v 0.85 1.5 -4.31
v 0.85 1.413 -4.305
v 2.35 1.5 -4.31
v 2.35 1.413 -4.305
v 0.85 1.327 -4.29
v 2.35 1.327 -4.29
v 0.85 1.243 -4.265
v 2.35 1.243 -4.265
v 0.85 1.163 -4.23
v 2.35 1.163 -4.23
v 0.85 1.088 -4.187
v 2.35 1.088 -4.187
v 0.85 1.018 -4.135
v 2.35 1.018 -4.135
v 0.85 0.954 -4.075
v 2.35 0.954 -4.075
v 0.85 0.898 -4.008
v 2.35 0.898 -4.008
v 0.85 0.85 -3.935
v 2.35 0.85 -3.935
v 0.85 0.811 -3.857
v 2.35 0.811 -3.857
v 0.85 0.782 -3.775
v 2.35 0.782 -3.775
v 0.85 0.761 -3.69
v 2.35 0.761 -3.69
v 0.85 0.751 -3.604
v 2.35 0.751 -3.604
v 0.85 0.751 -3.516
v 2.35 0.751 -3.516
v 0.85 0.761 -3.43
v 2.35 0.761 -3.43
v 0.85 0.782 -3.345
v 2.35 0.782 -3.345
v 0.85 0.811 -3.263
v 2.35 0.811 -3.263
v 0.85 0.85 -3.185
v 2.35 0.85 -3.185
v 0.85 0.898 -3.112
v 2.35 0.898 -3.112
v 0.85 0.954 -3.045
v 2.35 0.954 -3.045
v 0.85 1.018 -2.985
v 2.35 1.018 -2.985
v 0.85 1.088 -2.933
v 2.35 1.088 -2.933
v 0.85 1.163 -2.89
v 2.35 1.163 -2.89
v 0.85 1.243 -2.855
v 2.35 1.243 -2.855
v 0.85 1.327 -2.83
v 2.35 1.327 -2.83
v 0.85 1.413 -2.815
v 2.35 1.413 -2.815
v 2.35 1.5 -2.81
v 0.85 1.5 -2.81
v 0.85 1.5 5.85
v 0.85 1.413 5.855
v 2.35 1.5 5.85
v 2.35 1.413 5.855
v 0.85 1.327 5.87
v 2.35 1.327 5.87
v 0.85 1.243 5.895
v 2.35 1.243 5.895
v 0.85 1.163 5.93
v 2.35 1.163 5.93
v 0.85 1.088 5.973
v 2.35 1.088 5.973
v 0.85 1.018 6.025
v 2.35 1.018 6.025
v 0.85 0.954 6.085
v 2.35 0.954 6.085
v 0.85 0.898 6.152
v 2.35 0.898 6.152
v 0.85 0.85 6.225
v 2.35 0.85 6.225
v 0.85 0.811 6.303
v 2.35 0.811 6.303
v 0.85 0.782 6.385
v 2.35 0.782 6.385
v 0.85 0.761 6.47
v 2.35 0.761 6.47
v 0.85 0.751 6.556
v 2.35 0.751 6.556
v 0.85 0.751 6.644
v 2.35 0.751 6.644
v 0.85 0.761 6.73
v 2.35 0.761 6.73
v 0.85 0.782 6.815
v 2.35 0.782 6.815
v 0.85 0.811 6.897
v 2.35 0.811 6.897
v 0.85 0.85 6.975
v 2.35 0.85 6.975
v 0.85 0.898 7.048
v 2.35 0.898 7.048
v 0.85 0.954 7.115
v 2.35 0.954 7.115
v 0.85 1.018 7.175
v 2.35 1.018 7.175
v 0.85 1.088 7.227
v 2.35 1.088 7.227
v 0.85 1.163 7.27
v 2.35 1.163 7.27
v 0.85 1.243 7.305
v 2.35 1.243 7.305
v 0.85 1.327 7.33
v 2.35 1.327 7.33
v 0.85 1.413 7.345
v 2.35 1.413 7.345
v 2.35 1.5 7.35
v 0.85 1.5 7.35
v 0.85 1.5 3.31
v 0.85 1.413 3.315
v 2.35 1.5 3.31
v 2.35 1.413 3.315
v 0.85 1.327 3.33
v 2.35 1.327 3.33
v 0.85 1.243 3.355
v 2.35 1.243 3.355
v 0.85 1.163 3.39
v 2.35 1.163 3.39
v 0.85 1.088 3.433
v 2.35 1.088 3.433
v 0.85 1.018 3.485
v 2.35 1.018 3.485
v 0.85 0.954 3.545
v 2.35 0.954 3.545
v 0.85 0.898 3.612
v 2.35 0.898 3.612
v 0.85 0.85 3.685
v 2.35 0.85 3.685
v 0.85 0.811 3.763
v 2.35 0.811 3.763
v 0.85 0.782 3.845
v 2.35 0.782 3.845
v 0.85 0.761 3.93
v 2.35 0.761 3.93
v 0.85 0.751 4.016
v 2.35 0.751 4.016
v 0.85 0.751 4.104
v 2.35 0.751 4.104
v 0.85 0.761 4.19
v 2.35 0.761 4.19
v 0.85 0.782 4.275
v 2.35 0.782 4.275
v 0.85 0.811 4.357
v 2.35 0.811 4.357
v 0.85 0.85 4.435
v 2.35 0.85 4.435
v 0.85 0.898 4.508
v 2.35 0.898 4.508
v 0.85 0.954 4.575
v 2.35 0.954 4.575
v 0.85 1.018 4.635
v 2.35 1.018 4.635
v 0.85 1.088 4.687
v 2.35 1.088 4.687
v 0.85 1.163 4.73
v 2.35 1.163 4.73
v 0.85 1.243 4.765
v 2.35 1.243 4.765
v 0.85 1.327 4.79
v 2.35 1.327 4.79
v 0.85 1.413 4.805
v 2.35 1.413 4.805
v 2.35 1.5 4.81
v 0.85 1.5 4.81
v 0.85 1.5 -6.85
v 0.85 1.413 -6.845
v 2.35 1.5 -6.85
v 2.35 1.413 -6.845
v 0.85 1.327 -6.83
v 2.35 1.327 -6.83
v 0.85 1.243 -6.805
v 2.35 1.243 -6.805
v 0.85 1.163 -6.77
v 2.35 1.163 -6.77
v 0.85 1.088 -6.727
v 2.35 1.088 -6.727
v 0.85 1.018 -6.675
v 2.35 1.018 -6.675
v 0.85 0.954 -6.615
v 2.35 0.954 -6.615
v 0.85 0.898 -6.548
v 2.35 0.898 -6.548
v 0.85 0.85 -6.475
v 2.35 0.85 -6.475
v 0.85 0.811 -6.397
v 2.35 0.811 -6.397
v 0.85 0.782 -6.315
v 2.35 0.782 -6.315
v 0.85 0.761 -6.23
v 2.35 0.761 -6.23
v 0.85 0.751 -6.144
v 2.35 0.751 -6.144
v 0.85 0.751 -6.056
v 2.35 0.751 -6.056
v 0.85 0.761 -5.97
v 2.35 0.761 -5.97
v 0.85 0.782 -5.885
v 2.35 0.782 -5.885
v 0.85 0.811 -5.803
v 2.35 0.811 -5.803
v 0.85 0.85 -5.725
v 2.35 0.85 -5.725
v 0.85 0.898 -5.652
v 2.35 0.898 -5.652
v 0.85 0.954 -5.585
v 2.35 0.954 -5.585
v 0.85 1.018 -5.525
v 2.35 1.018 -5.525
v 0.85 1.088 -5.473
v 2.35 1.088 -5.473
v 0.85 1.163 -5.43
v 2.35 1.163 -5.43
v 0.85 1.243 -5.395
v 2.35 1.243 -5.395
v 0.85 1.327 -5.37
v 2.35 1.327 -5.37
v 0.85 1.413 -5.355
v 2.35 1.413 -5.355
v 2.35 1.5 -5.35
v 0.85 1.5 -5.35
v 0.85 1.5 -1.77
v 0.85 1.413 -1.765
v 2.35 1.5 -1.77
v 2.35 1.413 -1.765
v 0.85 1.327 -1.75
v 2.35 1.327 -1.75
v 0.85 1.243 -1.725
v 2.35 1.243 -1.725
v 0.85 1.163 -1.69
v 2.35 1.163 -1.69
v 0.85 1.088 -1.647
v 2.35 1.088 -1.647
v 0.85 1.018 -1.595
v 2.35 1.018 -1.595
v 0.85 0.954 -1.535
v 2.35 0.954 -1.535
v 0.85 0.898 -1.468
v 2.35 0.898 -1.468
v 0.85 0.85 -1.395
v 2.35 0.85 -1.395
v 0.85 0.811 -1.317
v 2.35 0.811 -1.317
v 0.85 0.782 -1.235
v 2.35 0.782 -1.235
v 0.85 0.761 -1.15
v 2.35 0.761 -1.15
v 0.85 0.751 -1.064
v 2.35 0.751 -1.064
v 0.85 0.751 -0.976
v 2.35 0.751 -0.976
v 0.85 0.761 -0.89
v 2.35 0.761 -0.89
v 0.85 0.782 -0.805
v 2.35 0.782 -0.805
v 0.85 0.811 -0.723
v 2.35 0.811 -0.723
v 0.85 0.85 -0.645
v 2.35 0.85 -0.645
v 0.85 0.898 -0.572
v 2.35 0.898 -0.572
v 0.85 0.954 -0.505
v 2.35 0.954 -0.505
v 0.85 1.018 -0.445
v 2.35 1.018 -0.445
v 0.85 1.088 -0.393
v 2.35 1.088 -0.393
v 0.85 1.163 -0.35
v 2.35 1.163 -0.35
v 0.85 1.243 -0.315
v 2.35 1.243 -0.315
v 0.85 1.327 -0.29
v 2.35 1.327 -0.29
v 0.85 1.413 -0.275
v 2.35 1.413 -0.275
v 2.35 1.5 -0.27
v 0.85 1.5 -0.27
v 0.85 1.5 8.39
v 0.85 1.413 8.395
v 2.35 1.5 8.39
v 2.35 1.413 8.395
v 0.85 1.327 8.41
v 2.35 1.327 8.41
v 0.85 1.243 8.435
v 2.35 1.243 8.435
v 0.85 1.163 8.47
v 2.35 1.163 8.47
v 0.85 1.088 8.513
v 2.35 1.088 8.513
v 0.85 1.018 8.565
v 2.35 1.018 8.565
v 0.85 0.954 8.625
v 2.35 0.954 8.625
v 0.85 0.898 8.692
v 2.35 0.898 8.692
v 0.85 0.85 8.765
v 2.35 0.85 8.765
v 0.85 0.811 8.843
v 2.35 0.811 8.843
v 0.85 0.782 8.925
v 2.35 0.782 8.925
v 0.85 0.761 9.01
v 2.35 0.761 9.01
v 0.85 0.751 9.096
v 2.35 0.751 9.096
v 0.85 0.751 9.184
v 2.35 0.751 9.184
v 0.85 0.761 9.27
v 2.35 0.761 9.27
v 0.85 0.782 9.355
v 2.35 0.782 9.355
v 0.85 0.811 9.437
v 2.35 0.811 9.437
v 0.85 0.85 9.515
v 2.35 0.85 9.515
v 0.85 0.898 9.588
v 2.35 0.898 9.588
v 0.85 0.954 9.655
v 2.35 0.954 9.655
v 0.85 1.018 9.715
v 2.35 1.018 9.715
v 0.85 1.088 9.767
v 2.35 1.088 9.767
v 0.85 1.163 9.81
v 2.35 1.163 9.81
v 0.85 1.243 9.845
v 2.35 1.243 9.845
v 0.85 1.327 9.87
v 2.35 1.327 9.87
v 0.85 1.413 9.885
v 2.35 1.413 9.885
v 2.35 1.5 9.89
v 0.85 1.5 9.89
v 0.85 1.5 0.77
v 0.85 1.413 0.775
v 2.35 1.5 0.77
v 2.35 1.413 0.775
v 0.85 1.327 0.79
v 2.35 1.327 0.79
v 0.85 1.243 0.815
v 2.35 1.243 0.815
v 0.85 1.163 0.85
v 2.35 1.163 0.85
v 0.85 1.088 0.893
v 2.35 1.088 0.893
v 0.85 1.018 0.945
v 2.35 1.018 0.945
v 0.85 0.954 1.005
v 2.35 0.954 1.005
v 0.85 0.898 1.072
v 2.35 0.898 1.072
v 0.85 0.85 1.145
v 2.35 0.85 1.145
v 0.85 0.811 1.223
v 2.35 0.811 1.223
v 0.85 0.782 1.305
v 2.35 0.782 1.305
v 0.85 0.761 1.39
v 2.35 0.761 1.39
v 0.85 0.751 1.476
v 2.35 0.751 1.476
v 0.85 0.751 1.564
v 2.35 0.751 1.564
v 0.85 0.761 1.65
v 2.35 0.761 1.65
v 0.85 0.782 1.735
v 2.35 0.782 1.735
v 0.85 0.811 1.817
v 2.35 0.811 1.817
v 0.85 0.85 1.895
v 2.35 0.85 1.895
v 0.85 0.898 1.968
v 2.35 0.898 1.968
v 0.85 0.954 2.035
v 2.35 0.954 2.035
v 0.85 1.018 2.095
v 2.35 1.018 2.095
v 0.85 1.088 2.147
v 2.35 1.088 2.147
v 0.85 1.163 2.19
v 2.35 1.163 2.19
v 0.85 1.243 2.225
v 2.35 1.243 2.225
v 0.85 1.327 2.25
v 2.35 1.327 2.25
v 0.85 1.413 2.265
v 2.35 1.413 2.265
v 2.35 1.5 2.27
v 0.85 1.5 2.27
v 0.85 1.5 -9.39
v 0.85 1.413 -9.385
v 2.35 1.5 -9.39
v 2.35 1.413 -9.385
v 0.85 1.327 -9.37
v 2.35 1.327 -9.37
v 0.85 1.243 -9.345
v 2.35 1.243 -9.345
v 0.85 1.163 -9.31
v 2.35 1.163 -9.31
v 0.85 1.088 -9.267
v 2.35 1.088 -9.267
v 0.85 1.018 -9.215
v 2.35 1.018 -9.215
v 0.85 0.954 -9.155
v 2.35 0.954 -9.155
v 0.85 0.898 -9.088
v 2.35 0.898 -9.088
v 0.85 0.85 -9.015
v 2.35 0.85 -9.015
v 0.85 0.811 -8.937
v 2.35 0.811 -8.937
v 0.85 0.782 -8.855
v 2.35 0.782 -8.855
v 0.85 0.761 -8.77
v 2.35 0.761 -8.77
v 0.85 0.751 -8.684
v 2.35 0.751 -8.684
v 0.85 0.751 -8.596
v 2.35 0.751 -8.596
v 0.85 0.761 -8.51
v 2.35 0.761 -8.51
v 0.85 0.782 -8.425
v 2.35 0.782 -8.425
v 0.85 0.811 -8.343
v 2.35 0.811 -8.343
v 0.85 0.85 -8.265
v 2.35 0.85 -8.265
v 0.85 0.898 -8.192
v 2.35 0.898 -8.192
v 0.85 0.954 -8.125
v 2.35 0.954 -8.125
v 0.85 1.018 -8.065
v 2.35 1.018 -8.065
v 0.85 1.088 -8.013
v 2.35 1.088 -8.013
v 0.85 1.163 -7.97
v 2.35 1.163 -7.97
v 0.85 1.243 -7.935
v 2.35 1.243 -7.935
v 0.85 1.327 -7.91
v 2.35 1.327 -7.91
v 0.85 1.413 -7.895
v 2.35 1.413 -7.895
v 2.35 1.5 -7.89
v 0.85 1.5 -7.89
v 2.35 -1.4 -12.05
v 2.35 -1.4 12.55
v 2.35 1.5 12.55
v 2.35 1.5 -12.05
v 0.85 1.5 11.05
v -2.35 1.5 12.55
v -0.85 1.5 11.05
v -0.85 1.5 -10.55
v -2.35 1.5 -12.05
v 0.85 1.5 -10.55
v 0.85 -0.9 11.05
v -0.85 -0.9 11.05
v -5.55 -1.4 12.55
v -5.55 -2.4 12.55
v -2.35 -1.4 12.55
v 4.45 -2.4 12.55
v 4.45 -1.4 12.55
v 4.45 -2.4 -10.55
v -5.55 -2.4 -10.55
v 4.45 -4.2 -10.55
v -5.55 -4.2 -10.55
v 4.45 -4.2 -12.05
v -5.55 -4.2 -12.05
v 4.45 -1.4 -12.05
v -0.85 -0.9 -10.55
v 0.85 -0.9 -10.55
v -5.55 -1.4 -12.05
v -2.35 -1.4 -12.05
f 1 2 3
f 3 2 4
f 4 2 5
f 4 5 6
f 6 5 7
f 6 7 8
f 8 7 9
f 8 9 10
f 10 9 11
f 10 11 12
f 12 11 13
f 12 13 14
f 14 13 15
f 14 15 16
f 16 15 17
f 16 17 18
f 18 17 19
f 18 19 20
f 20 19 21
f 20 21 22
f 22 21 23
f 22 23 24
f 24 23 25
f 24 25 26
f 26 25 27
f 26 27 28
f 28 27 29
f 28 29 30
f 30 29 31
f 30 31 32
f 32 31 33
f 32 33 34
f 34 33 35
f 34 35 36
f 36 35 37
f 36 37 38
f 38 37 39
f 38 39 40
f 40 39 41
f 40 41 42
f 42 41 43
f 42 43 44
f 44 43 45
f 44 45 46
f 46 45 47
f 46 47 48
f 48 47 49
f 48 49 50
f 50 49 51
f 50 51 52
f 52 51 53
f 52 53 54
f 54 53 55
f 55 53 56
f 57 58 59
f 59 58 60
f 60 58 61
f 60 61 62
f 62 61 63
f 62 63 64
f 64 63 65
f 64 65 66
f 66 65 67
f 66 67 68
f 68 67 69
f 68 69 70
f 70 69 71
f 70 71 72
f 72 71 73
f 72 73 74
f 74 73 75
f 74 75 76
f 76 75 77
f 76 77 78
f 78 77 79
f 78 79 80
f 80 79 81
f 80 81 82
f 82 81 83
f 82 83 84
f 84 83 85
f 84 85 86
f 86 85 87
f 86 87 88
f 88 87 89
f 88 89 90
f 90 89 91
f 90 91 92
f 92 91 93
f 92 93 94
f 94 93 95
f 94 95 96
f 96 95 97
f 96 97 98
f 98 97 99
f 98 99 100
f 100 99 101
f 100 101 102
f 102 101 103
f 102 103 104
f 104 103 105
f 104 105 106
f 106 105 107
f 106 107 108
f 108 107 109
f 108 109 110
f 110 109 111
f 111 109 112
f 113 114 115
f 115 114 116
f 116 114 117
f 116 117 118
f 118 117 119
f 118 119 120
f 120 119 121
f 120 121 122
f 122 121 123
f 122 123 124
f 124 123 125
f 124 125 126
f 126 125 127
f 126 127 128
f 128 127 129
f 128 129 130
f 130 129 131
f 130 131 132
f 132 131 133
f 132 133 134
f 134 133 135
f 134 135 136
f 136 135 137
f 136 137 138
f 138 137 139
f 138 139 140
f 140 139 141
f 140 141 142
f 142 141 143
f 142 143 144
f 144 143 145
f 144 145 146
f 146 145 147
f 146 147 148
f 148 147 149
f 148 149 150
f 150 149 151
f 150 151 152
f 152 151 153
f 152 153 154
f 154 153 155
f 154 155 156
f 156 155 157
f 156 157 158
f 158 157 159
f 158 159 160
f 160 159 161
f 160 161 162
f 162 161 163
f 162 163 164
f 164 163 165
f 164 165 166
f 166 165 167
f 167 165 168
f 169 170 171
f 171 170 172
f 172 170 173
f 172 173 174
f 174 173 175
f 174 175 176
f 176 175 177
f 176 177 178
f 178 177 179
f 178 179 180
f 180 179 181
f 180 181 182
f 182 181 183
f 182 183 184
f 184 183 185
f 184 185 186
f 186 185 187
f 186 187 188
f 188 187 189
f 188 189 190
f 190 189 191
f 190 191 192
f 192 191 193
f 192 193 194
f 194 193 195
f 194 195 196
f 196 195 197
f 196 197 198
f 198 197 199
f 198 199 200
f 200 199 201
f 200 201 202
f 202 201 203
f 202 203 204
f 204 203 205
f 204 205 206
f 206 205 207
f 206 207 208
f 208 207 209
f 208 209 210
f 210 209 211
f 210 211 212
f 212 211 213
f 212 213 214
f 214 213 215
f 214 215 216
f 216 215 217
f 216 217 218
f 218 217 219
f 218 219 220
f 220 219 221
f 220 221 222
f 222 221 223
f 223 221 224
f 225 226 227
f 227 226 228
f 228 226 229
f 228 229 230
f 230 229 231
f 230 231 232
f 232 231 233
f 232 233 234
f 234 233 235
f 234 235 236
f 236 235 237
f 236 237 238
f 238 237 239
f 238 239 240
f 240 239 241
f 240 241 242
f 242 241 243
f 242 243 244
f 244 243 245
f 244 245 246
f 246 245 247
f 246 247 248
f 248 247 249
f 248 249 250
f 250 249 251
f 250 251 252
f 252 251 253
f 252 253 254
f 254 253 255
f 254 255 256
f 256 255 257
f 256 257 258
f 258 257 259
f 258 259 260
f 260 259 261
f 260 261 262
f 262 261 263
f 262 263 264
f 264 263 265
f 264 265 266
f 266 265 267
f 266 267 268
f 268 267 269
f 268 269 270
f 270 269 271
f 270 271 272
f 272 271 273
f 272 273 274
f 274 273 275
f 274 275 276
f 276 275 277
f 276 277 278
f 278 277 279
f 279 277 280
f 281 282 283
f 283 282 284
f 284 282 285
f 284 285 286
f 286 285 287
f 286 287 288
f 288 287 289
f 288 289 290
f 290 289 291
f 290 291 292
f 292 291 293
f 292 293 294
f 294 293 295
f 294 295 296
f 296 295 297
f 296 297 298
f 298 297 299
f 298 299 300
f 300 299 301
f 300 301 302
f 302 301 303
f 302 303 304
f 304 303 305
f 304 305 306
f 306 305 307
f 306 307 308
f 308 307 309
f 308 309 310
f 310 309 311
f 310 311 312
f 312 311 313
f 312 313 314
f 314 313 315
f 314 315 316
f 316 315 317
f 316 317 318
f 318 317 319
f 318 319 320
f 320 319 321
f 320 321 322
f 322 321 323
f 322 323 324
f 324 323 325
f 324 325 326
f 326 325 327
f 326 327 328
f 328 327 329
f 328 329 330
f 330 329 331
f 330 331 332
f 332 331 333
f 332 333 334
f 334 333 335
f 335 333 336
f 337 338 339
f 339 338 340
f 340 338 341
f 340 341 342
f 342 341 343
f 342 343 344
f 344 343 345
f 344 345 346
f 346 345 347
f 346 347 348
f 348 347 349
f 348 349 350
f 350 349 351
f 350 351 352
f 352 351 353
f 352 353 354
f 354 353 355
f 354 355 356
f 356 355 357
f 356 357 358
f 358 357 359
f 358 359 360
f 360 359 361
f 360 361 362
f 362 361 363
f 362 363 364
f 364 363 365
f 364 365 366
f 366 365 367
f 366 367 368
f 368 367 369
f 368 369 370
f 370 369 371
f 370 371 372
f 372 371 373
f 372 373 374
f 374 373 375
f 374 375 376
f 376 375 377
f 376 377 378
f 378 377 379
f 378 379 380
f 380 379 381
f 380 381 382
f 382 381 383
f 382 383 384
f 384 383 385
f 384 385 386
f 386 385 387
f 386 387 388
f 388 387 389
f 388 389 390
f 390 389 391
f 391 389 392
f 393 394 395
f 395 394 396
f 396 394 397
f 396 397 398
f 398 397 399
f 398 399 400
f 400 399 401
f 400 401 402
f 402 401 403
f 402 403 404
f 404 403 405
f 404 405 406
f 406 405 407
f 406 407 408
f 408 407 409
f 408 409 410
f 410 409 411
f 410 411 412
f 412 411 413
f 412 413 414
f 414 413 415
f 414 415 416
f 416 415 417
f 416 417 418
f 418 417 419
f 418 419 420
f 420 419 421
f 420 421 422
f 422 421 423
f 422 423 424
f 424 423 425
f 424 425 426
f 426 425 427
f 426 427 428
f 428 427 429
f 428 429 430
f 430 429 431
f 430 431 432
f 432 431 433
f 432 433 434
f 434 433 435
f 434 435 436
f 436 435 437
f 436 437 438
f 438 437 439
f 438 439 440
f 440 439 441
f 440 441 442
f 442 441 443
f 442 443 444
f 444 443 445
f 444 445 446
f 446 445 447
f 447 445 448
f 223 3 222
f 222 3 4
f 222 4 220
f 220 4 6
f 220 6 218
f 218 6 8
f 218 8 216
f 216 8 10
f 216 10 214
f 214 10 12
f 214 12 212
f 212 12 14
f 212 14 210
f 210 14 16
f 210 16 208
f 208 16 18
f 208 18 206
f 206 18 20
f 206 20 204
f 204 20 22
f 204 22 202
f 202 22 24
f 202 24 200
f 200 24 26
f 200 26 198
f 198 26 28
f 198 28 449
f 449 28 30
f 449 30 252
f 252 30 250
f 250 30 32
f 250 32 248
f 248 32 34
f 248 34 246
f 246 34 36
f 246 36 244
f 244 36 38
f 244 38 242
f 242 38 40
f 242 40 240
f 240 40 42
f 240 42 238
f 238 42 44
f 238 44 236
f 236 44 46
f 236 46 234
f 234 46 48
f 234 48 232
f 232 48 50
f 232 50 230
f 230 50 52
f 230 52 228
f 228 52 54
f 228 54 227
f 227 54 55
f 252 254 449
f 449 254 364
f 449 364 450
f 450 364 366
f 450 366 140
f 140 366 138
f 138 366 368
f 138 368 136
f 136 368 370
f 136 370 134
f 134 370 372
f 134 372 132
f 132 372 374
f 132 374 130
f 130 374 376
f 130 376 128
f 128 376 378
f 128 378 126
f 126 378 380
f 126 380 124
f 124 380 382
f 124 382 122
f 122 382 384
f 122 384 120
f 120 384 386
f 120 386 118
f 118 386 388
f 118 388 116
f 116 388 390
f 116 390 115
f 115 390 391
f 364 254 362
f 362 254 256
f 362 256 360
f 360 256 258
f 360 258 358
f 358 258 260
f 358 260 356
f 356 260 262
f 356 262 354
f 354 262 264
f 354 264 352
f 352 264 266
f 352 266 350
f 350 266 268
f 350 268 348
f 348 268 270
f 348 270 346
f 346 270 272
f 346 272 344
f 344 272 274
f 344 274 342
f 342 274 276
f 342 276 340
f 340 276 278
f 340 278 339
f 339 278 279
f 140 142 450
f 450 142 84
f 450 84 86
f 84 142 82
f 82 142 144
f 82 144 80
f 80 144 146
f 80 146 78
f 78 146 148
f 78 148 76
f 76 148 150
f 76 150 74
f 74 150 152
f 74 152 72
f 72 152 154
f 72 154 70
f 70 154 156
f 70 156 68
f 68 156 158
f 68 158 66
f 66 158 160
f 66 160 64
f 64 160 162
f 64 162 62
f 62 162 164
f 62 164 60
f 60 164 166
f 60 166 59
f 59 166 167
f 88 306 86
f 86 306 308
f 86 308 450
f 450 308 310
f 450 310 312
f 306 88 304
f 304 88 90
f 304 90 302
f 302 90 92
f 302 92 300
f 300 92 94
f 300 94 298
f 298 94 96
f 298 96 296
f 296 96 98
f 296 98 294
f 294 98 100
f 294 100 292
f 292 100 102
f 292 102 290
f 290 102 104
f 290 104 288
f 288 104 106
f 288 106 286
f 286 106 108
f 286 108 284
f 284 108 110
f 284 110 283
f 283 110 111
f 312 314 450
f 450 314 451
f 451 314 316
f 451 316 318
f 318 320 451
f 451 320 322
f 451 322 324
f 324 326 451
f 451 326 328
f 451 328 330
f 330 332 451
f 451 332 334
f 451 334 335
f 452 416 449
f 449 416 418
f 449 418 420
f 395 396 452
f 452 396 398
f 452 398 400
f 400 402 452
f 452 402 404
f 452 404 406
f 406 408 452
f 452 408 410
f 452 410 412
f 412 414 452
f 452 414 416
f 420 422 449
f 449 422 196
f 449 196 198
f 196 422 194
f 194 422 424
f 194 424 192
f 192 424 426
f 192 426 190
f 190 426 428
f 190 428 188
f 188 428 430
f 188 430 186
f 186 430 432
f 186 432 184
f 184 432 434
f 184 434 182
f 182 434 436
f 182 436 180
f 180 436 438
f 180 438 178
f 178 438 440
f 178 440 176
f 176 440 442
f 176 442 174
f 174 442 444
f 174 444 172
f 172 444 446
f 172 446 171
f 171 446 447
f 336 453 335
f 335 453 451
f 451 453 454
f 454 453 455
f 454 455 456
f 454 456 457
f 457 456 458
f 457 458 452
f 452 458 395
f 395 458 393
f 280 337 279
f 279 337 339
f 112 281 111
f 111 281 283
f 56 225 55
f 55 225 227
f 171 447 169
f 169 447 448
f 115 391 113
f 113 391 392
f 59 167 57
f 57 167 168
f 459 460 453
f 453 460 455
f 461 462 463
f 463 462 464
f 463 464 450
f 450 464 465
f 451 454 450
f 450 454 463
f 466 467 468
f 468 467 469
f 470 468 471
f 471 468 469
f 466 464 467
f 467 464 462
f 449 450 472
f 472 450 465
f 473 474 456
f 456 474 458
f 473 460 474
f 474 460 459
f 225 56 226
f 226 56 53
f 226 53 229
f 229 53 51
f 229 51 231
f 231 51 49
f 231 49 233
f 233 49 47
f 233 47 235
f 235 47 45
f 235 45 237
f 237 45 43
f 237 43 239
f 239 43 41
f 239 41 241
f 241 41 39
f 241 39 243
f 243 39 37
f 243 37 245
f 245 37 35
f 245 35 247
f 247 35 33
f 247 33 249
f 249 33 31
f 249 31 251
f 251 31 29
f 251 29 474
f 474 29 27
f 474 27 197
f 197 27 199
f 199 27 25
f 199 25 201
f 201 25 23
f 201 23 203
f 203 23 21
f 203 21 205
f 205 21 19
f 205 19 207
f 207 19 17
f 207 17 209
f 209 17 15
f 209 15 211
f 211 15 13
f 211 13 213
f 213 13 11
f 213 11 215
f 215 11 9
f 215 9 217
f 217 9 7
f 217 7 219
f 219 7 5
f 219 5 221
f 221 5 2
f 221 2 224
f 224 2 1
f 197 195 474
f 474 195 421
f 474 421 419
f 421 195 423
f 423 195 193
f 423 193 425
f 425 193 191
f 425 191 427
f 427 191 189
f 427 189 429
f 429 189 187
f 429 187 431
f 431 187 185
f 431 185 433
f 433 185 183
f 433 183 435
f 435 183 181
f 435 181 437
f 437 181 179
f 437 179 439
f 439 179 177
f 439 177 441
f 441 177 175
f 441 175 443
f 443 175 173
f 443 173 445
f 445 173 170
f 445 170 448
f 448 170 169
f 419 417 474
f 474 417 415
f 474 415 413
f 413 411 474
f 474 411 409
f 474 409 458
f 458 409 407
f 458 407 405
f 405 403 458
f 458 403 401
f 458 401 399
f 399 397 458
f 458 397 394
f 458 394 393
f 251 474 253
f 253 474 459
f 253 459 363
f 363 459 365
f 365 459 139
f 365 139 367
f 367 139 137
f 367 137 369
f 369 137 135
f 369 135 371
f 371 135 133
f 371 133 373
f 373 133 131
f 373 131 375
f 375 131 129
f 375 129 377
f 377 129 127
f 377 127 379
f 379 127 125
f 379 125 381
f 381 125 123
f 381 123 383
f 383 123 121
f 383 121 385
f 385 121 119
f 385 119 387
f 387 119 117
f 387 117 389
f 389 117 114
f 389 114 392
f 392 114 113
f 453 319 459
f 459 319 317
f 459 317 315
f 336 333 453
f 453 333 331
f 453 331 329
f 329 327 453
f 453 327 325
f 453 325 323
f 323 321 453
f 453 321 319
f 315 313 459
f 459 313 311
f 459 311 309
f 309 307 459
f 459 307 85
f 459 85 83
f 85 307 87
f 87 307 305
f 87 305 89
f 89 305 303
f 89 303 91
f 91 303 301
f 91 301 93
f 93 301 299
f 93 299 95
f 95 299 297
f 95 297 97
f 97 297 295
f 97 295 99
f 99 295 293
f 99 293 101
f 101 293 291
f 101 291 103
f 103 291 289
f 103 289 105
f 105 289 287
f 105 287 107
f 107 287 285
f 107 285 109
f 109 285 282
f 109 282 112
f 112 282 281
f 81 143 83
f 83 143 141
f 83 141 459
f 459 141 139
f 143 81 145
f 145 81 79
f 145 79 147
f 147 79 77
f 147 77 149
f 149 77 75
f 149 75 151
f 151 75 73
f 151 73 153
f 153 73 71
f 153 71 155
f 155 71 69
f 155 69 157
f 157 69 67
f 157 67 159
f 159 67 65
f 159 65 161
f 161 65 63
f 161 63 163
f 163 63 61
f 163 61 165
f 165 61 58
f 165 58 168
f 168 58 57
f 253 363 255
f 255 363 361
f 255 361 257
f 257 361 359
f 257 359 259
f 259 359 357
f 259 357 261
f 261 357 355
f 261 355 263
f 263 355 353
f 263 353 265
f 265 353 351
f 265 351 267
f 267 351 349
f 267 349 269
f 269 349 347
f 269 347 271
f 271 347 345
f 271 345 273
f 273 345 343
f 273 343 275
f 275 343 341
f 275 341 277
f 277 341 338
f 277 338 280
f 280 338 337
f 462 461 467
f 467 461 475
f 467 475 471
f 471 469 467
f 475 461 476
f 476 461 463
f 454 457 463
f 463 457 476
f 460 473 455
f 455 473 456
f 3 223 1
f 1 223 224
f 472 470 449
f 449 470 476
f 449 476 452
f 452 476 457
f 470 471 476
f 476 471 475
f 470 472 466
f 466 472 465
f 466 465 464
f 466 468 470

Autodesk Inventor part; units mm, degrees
ref_plane "YZ Plane" through (0, 0, 0) normal (1, 0, 0) x (0, 1, 0)
ref_plane "XZ Plane" through (0, 0, 0) normal (0, 1, 0) x (-1, 0, 0)
ref_plane "XY Plane" through (0, 0, 0) normal (0, 0, 1) x (1, 0, 0)
sketch "Sketch1" plane through (0, 0, 0) normal (0, 1, 0) x (-1, 0, 0)
  line L0 (0.85, 10.55) -> (-0.85, 10.55)
  line L1 (-0.85, 10.55) -> (-0.85, -10.55)
  line L2 (-0.85, -10.55) -> (0.85, -10.55)
  line L3 (0.85, -10.55) -> (0.85, 10.55)
  line L4 (0.85, 10.55) -> (-0.85, -10.55) construction
  line L5 (-0.85, 10.55) -> (0.85, -10.55) construction
  line L6 (2.35, 12.05) -> (-2.35, 12.05)
  line L7 (-2.35, 12.05) -> (-2.35, -12.05)
  line L8 (-2.35, -12.05) -> (2.35, -12.05)
  line L9 (2.35, -12.05) -> (2.35, 12.05)
  point P0 (0, 0)
  dimension "d0" = 1.7
  dimension "d1" = 21.1
  dimension "d2" = 1.5
extrude "Extrusion1" add sketch "Sketch1" along normal blind 1.5
sketch "Sketch2" plane through (0, 0, 0) normal (0, -1, 0) x (1, 0, 0)
  line L0 (4.95, 12.05) -> (-6.05, 12.05)
  line L1 (-6.05, 12.05) -> (-6.05, -12.05)
  line L2 (-6.05, -12.05) -> (4.95, -12.05)
  line L3 (4.95, -12.05) -> (4.95, 12.05)
  line L4 (-2.35, 12.05) -> (2.35, 12.05) projected
  line L5 (-2.35, -12.05) -> (-2.35, 12.05) projected
  dimension "d5" = 11
  dimension "d6" = 3.7
extrude "Extrusion2" add sketch "Sketch2" along normal blind 2.4
sketch "Sketch3" plane through (0, 0, 0) normal (0, 1, 0) x (1, 0, 0)
  line L0 (-2.35, 12.05) -> (-2.35, -12.05) projected
  line L1 (-6.05, 12.05) -> (-2.35, 12.05) projected
  line L2 (-6.05, -12.05) -> (-6.05, 12.05) projected
  line L3 (-2.35, -12.05) -> (-6.05, -12.05) projected
  line L4 (2.35, -12.05) -> (2.35, 12.05) projected
  line L5 (4.95, -12.05) -> (2.35, -12.05) projected
  line L6 (4.95, 12.05) -> (4.95, -12.05) projected
  line L7 (2.35, 12.05) -> (4.95, 12.05) projected
  point P0 (0, 0)
extrude "Extrusion3" cut sketch "Sketch3" against normal blind 1.4
move faces "Move1" translate (0, 0, -1.5) faces at (0.7833, 0.5333, 12.05)
sketch "Sketch4" plane through (0, -2.4, 0) normal (0, -1, 0) x (1, 0, 0)
  line L0 (-0.85, -10.55) -> (0.85, -10.55) projected
  line L1 (-6.05, 10.55) -> (-6.05, -12.05) projected
  line L2 (2.35, -12.05) -> (4.95, -12.05) projected
  line L3 (-6.05, -10.55) -> (4.95, -10.55)
  line L4 (4.95, -10.55) -> (4.95, -12.05)
  line L5 (4.95, -12.05) -> (-6.05, -12.05)
  line L6 (-6.05, -12.05) -> (-6.05, -10.55)
  point P0 (0, 0)
extrude "Extrusion4" add sketch "Sketch4" along normal blind 1.8
move faces "Move2" translate (0, -1.4, 0) faces at (-0.2833, 0, 3.5167)
move faces "Move3" translate (0.5, 0, 0) faces at (-6.05, -1.7333, -4.0167)
move faces "Move4" translate (-0.5, 0, 0) faces at (4.95, -1.7333, -4.0167)
move faces "Move5" translate (0, 0, 1) faces at (-0.65, -2.0667, 10.55)
sketch "Sketch5" plane through (-5.55, -2.4, 11.55) normal (0, 0, 1) x (1, 0, 0)
  line L0 (4.7, 1) -> (4.7, 3.9) projected
  line L1 (3.2, 3.9) -> (4.7, 3.9) projected
  line L2 (3.2, 1) -> (3.2, 3.9) projected
  line L3 (3.2, 1) -> (0, 1) projected
  line L4 (0, 1) -> (0, 0) projected
  line L5 (10, 0) -> (0, 0) projected
  line L6 (10, 1) -> (10, 0) projected
  line L7 (10, 1) -> (7.9, 1) projected
  line L8 (7.9, 1) -> (7.9, 3.9) projected
  line L9 (6.4, 3.9) -> (7.9, 3.9) projected
  line L10 (6.4, 1) -> (6.4, 3.9) projected
  line L11 (6.4, 1) -> (4.7, 1) projected
  line L12 (4.7, 3.9) -> (6.4, 3.9) projected
  line L13 (4.7, 3.9) -> (6.4, 3.9)
  point P0 (5.55, 2.4)
extrude "Extrusion5" add sketch "Sketch5" along normal blind 1
move faces "Move6" translate (0, 0, -0.5) faces at (-0.2833, 0.5333, 11.55)
move faces "Move7" translate (0, 0.5, 0) faces at (-0.85, 0.5333, -3.35) (-0.2833, -1.4, -3.35)
sketch "Sketch6" plane through (2.35, -1.4, -12.05) normal (1, 0, 0) x (0, 0, -1)
  line L0 (-1.5, 2.9) -> (-23.1, 2.9) projected
  circle A0 centre (-3.41, 2.9) radius 0.75
  circle A1 centre (-5.95, 2.9) radius 0.75
  circle A2 centre (-8.49, 2.9) radius 0.75
  circle A3 centre (-11.03, 2.9) radius 0.75
  circle A4 centre (-13.57, 2.9) radius 0.75
  circle A5 centre (-16.11, 2.9) radius 0.75
  circle A6 centre (-18.65, 2.9) radius 0.75
  circle A7 centre (-21.19, 2.9) radius 0.75
  point P0 (-12.05, 1.4)
  dimension "d36" = 1.5
  dimension "d39" = 2.54
  dimension "d44" = 1.91
  dimension "d45" = 1.91
extrude "Extrusion6" cut sketch "Sketch6" against normal blind 2
equation "\"d44\" = d45"
properties part number "gyro_holder"
